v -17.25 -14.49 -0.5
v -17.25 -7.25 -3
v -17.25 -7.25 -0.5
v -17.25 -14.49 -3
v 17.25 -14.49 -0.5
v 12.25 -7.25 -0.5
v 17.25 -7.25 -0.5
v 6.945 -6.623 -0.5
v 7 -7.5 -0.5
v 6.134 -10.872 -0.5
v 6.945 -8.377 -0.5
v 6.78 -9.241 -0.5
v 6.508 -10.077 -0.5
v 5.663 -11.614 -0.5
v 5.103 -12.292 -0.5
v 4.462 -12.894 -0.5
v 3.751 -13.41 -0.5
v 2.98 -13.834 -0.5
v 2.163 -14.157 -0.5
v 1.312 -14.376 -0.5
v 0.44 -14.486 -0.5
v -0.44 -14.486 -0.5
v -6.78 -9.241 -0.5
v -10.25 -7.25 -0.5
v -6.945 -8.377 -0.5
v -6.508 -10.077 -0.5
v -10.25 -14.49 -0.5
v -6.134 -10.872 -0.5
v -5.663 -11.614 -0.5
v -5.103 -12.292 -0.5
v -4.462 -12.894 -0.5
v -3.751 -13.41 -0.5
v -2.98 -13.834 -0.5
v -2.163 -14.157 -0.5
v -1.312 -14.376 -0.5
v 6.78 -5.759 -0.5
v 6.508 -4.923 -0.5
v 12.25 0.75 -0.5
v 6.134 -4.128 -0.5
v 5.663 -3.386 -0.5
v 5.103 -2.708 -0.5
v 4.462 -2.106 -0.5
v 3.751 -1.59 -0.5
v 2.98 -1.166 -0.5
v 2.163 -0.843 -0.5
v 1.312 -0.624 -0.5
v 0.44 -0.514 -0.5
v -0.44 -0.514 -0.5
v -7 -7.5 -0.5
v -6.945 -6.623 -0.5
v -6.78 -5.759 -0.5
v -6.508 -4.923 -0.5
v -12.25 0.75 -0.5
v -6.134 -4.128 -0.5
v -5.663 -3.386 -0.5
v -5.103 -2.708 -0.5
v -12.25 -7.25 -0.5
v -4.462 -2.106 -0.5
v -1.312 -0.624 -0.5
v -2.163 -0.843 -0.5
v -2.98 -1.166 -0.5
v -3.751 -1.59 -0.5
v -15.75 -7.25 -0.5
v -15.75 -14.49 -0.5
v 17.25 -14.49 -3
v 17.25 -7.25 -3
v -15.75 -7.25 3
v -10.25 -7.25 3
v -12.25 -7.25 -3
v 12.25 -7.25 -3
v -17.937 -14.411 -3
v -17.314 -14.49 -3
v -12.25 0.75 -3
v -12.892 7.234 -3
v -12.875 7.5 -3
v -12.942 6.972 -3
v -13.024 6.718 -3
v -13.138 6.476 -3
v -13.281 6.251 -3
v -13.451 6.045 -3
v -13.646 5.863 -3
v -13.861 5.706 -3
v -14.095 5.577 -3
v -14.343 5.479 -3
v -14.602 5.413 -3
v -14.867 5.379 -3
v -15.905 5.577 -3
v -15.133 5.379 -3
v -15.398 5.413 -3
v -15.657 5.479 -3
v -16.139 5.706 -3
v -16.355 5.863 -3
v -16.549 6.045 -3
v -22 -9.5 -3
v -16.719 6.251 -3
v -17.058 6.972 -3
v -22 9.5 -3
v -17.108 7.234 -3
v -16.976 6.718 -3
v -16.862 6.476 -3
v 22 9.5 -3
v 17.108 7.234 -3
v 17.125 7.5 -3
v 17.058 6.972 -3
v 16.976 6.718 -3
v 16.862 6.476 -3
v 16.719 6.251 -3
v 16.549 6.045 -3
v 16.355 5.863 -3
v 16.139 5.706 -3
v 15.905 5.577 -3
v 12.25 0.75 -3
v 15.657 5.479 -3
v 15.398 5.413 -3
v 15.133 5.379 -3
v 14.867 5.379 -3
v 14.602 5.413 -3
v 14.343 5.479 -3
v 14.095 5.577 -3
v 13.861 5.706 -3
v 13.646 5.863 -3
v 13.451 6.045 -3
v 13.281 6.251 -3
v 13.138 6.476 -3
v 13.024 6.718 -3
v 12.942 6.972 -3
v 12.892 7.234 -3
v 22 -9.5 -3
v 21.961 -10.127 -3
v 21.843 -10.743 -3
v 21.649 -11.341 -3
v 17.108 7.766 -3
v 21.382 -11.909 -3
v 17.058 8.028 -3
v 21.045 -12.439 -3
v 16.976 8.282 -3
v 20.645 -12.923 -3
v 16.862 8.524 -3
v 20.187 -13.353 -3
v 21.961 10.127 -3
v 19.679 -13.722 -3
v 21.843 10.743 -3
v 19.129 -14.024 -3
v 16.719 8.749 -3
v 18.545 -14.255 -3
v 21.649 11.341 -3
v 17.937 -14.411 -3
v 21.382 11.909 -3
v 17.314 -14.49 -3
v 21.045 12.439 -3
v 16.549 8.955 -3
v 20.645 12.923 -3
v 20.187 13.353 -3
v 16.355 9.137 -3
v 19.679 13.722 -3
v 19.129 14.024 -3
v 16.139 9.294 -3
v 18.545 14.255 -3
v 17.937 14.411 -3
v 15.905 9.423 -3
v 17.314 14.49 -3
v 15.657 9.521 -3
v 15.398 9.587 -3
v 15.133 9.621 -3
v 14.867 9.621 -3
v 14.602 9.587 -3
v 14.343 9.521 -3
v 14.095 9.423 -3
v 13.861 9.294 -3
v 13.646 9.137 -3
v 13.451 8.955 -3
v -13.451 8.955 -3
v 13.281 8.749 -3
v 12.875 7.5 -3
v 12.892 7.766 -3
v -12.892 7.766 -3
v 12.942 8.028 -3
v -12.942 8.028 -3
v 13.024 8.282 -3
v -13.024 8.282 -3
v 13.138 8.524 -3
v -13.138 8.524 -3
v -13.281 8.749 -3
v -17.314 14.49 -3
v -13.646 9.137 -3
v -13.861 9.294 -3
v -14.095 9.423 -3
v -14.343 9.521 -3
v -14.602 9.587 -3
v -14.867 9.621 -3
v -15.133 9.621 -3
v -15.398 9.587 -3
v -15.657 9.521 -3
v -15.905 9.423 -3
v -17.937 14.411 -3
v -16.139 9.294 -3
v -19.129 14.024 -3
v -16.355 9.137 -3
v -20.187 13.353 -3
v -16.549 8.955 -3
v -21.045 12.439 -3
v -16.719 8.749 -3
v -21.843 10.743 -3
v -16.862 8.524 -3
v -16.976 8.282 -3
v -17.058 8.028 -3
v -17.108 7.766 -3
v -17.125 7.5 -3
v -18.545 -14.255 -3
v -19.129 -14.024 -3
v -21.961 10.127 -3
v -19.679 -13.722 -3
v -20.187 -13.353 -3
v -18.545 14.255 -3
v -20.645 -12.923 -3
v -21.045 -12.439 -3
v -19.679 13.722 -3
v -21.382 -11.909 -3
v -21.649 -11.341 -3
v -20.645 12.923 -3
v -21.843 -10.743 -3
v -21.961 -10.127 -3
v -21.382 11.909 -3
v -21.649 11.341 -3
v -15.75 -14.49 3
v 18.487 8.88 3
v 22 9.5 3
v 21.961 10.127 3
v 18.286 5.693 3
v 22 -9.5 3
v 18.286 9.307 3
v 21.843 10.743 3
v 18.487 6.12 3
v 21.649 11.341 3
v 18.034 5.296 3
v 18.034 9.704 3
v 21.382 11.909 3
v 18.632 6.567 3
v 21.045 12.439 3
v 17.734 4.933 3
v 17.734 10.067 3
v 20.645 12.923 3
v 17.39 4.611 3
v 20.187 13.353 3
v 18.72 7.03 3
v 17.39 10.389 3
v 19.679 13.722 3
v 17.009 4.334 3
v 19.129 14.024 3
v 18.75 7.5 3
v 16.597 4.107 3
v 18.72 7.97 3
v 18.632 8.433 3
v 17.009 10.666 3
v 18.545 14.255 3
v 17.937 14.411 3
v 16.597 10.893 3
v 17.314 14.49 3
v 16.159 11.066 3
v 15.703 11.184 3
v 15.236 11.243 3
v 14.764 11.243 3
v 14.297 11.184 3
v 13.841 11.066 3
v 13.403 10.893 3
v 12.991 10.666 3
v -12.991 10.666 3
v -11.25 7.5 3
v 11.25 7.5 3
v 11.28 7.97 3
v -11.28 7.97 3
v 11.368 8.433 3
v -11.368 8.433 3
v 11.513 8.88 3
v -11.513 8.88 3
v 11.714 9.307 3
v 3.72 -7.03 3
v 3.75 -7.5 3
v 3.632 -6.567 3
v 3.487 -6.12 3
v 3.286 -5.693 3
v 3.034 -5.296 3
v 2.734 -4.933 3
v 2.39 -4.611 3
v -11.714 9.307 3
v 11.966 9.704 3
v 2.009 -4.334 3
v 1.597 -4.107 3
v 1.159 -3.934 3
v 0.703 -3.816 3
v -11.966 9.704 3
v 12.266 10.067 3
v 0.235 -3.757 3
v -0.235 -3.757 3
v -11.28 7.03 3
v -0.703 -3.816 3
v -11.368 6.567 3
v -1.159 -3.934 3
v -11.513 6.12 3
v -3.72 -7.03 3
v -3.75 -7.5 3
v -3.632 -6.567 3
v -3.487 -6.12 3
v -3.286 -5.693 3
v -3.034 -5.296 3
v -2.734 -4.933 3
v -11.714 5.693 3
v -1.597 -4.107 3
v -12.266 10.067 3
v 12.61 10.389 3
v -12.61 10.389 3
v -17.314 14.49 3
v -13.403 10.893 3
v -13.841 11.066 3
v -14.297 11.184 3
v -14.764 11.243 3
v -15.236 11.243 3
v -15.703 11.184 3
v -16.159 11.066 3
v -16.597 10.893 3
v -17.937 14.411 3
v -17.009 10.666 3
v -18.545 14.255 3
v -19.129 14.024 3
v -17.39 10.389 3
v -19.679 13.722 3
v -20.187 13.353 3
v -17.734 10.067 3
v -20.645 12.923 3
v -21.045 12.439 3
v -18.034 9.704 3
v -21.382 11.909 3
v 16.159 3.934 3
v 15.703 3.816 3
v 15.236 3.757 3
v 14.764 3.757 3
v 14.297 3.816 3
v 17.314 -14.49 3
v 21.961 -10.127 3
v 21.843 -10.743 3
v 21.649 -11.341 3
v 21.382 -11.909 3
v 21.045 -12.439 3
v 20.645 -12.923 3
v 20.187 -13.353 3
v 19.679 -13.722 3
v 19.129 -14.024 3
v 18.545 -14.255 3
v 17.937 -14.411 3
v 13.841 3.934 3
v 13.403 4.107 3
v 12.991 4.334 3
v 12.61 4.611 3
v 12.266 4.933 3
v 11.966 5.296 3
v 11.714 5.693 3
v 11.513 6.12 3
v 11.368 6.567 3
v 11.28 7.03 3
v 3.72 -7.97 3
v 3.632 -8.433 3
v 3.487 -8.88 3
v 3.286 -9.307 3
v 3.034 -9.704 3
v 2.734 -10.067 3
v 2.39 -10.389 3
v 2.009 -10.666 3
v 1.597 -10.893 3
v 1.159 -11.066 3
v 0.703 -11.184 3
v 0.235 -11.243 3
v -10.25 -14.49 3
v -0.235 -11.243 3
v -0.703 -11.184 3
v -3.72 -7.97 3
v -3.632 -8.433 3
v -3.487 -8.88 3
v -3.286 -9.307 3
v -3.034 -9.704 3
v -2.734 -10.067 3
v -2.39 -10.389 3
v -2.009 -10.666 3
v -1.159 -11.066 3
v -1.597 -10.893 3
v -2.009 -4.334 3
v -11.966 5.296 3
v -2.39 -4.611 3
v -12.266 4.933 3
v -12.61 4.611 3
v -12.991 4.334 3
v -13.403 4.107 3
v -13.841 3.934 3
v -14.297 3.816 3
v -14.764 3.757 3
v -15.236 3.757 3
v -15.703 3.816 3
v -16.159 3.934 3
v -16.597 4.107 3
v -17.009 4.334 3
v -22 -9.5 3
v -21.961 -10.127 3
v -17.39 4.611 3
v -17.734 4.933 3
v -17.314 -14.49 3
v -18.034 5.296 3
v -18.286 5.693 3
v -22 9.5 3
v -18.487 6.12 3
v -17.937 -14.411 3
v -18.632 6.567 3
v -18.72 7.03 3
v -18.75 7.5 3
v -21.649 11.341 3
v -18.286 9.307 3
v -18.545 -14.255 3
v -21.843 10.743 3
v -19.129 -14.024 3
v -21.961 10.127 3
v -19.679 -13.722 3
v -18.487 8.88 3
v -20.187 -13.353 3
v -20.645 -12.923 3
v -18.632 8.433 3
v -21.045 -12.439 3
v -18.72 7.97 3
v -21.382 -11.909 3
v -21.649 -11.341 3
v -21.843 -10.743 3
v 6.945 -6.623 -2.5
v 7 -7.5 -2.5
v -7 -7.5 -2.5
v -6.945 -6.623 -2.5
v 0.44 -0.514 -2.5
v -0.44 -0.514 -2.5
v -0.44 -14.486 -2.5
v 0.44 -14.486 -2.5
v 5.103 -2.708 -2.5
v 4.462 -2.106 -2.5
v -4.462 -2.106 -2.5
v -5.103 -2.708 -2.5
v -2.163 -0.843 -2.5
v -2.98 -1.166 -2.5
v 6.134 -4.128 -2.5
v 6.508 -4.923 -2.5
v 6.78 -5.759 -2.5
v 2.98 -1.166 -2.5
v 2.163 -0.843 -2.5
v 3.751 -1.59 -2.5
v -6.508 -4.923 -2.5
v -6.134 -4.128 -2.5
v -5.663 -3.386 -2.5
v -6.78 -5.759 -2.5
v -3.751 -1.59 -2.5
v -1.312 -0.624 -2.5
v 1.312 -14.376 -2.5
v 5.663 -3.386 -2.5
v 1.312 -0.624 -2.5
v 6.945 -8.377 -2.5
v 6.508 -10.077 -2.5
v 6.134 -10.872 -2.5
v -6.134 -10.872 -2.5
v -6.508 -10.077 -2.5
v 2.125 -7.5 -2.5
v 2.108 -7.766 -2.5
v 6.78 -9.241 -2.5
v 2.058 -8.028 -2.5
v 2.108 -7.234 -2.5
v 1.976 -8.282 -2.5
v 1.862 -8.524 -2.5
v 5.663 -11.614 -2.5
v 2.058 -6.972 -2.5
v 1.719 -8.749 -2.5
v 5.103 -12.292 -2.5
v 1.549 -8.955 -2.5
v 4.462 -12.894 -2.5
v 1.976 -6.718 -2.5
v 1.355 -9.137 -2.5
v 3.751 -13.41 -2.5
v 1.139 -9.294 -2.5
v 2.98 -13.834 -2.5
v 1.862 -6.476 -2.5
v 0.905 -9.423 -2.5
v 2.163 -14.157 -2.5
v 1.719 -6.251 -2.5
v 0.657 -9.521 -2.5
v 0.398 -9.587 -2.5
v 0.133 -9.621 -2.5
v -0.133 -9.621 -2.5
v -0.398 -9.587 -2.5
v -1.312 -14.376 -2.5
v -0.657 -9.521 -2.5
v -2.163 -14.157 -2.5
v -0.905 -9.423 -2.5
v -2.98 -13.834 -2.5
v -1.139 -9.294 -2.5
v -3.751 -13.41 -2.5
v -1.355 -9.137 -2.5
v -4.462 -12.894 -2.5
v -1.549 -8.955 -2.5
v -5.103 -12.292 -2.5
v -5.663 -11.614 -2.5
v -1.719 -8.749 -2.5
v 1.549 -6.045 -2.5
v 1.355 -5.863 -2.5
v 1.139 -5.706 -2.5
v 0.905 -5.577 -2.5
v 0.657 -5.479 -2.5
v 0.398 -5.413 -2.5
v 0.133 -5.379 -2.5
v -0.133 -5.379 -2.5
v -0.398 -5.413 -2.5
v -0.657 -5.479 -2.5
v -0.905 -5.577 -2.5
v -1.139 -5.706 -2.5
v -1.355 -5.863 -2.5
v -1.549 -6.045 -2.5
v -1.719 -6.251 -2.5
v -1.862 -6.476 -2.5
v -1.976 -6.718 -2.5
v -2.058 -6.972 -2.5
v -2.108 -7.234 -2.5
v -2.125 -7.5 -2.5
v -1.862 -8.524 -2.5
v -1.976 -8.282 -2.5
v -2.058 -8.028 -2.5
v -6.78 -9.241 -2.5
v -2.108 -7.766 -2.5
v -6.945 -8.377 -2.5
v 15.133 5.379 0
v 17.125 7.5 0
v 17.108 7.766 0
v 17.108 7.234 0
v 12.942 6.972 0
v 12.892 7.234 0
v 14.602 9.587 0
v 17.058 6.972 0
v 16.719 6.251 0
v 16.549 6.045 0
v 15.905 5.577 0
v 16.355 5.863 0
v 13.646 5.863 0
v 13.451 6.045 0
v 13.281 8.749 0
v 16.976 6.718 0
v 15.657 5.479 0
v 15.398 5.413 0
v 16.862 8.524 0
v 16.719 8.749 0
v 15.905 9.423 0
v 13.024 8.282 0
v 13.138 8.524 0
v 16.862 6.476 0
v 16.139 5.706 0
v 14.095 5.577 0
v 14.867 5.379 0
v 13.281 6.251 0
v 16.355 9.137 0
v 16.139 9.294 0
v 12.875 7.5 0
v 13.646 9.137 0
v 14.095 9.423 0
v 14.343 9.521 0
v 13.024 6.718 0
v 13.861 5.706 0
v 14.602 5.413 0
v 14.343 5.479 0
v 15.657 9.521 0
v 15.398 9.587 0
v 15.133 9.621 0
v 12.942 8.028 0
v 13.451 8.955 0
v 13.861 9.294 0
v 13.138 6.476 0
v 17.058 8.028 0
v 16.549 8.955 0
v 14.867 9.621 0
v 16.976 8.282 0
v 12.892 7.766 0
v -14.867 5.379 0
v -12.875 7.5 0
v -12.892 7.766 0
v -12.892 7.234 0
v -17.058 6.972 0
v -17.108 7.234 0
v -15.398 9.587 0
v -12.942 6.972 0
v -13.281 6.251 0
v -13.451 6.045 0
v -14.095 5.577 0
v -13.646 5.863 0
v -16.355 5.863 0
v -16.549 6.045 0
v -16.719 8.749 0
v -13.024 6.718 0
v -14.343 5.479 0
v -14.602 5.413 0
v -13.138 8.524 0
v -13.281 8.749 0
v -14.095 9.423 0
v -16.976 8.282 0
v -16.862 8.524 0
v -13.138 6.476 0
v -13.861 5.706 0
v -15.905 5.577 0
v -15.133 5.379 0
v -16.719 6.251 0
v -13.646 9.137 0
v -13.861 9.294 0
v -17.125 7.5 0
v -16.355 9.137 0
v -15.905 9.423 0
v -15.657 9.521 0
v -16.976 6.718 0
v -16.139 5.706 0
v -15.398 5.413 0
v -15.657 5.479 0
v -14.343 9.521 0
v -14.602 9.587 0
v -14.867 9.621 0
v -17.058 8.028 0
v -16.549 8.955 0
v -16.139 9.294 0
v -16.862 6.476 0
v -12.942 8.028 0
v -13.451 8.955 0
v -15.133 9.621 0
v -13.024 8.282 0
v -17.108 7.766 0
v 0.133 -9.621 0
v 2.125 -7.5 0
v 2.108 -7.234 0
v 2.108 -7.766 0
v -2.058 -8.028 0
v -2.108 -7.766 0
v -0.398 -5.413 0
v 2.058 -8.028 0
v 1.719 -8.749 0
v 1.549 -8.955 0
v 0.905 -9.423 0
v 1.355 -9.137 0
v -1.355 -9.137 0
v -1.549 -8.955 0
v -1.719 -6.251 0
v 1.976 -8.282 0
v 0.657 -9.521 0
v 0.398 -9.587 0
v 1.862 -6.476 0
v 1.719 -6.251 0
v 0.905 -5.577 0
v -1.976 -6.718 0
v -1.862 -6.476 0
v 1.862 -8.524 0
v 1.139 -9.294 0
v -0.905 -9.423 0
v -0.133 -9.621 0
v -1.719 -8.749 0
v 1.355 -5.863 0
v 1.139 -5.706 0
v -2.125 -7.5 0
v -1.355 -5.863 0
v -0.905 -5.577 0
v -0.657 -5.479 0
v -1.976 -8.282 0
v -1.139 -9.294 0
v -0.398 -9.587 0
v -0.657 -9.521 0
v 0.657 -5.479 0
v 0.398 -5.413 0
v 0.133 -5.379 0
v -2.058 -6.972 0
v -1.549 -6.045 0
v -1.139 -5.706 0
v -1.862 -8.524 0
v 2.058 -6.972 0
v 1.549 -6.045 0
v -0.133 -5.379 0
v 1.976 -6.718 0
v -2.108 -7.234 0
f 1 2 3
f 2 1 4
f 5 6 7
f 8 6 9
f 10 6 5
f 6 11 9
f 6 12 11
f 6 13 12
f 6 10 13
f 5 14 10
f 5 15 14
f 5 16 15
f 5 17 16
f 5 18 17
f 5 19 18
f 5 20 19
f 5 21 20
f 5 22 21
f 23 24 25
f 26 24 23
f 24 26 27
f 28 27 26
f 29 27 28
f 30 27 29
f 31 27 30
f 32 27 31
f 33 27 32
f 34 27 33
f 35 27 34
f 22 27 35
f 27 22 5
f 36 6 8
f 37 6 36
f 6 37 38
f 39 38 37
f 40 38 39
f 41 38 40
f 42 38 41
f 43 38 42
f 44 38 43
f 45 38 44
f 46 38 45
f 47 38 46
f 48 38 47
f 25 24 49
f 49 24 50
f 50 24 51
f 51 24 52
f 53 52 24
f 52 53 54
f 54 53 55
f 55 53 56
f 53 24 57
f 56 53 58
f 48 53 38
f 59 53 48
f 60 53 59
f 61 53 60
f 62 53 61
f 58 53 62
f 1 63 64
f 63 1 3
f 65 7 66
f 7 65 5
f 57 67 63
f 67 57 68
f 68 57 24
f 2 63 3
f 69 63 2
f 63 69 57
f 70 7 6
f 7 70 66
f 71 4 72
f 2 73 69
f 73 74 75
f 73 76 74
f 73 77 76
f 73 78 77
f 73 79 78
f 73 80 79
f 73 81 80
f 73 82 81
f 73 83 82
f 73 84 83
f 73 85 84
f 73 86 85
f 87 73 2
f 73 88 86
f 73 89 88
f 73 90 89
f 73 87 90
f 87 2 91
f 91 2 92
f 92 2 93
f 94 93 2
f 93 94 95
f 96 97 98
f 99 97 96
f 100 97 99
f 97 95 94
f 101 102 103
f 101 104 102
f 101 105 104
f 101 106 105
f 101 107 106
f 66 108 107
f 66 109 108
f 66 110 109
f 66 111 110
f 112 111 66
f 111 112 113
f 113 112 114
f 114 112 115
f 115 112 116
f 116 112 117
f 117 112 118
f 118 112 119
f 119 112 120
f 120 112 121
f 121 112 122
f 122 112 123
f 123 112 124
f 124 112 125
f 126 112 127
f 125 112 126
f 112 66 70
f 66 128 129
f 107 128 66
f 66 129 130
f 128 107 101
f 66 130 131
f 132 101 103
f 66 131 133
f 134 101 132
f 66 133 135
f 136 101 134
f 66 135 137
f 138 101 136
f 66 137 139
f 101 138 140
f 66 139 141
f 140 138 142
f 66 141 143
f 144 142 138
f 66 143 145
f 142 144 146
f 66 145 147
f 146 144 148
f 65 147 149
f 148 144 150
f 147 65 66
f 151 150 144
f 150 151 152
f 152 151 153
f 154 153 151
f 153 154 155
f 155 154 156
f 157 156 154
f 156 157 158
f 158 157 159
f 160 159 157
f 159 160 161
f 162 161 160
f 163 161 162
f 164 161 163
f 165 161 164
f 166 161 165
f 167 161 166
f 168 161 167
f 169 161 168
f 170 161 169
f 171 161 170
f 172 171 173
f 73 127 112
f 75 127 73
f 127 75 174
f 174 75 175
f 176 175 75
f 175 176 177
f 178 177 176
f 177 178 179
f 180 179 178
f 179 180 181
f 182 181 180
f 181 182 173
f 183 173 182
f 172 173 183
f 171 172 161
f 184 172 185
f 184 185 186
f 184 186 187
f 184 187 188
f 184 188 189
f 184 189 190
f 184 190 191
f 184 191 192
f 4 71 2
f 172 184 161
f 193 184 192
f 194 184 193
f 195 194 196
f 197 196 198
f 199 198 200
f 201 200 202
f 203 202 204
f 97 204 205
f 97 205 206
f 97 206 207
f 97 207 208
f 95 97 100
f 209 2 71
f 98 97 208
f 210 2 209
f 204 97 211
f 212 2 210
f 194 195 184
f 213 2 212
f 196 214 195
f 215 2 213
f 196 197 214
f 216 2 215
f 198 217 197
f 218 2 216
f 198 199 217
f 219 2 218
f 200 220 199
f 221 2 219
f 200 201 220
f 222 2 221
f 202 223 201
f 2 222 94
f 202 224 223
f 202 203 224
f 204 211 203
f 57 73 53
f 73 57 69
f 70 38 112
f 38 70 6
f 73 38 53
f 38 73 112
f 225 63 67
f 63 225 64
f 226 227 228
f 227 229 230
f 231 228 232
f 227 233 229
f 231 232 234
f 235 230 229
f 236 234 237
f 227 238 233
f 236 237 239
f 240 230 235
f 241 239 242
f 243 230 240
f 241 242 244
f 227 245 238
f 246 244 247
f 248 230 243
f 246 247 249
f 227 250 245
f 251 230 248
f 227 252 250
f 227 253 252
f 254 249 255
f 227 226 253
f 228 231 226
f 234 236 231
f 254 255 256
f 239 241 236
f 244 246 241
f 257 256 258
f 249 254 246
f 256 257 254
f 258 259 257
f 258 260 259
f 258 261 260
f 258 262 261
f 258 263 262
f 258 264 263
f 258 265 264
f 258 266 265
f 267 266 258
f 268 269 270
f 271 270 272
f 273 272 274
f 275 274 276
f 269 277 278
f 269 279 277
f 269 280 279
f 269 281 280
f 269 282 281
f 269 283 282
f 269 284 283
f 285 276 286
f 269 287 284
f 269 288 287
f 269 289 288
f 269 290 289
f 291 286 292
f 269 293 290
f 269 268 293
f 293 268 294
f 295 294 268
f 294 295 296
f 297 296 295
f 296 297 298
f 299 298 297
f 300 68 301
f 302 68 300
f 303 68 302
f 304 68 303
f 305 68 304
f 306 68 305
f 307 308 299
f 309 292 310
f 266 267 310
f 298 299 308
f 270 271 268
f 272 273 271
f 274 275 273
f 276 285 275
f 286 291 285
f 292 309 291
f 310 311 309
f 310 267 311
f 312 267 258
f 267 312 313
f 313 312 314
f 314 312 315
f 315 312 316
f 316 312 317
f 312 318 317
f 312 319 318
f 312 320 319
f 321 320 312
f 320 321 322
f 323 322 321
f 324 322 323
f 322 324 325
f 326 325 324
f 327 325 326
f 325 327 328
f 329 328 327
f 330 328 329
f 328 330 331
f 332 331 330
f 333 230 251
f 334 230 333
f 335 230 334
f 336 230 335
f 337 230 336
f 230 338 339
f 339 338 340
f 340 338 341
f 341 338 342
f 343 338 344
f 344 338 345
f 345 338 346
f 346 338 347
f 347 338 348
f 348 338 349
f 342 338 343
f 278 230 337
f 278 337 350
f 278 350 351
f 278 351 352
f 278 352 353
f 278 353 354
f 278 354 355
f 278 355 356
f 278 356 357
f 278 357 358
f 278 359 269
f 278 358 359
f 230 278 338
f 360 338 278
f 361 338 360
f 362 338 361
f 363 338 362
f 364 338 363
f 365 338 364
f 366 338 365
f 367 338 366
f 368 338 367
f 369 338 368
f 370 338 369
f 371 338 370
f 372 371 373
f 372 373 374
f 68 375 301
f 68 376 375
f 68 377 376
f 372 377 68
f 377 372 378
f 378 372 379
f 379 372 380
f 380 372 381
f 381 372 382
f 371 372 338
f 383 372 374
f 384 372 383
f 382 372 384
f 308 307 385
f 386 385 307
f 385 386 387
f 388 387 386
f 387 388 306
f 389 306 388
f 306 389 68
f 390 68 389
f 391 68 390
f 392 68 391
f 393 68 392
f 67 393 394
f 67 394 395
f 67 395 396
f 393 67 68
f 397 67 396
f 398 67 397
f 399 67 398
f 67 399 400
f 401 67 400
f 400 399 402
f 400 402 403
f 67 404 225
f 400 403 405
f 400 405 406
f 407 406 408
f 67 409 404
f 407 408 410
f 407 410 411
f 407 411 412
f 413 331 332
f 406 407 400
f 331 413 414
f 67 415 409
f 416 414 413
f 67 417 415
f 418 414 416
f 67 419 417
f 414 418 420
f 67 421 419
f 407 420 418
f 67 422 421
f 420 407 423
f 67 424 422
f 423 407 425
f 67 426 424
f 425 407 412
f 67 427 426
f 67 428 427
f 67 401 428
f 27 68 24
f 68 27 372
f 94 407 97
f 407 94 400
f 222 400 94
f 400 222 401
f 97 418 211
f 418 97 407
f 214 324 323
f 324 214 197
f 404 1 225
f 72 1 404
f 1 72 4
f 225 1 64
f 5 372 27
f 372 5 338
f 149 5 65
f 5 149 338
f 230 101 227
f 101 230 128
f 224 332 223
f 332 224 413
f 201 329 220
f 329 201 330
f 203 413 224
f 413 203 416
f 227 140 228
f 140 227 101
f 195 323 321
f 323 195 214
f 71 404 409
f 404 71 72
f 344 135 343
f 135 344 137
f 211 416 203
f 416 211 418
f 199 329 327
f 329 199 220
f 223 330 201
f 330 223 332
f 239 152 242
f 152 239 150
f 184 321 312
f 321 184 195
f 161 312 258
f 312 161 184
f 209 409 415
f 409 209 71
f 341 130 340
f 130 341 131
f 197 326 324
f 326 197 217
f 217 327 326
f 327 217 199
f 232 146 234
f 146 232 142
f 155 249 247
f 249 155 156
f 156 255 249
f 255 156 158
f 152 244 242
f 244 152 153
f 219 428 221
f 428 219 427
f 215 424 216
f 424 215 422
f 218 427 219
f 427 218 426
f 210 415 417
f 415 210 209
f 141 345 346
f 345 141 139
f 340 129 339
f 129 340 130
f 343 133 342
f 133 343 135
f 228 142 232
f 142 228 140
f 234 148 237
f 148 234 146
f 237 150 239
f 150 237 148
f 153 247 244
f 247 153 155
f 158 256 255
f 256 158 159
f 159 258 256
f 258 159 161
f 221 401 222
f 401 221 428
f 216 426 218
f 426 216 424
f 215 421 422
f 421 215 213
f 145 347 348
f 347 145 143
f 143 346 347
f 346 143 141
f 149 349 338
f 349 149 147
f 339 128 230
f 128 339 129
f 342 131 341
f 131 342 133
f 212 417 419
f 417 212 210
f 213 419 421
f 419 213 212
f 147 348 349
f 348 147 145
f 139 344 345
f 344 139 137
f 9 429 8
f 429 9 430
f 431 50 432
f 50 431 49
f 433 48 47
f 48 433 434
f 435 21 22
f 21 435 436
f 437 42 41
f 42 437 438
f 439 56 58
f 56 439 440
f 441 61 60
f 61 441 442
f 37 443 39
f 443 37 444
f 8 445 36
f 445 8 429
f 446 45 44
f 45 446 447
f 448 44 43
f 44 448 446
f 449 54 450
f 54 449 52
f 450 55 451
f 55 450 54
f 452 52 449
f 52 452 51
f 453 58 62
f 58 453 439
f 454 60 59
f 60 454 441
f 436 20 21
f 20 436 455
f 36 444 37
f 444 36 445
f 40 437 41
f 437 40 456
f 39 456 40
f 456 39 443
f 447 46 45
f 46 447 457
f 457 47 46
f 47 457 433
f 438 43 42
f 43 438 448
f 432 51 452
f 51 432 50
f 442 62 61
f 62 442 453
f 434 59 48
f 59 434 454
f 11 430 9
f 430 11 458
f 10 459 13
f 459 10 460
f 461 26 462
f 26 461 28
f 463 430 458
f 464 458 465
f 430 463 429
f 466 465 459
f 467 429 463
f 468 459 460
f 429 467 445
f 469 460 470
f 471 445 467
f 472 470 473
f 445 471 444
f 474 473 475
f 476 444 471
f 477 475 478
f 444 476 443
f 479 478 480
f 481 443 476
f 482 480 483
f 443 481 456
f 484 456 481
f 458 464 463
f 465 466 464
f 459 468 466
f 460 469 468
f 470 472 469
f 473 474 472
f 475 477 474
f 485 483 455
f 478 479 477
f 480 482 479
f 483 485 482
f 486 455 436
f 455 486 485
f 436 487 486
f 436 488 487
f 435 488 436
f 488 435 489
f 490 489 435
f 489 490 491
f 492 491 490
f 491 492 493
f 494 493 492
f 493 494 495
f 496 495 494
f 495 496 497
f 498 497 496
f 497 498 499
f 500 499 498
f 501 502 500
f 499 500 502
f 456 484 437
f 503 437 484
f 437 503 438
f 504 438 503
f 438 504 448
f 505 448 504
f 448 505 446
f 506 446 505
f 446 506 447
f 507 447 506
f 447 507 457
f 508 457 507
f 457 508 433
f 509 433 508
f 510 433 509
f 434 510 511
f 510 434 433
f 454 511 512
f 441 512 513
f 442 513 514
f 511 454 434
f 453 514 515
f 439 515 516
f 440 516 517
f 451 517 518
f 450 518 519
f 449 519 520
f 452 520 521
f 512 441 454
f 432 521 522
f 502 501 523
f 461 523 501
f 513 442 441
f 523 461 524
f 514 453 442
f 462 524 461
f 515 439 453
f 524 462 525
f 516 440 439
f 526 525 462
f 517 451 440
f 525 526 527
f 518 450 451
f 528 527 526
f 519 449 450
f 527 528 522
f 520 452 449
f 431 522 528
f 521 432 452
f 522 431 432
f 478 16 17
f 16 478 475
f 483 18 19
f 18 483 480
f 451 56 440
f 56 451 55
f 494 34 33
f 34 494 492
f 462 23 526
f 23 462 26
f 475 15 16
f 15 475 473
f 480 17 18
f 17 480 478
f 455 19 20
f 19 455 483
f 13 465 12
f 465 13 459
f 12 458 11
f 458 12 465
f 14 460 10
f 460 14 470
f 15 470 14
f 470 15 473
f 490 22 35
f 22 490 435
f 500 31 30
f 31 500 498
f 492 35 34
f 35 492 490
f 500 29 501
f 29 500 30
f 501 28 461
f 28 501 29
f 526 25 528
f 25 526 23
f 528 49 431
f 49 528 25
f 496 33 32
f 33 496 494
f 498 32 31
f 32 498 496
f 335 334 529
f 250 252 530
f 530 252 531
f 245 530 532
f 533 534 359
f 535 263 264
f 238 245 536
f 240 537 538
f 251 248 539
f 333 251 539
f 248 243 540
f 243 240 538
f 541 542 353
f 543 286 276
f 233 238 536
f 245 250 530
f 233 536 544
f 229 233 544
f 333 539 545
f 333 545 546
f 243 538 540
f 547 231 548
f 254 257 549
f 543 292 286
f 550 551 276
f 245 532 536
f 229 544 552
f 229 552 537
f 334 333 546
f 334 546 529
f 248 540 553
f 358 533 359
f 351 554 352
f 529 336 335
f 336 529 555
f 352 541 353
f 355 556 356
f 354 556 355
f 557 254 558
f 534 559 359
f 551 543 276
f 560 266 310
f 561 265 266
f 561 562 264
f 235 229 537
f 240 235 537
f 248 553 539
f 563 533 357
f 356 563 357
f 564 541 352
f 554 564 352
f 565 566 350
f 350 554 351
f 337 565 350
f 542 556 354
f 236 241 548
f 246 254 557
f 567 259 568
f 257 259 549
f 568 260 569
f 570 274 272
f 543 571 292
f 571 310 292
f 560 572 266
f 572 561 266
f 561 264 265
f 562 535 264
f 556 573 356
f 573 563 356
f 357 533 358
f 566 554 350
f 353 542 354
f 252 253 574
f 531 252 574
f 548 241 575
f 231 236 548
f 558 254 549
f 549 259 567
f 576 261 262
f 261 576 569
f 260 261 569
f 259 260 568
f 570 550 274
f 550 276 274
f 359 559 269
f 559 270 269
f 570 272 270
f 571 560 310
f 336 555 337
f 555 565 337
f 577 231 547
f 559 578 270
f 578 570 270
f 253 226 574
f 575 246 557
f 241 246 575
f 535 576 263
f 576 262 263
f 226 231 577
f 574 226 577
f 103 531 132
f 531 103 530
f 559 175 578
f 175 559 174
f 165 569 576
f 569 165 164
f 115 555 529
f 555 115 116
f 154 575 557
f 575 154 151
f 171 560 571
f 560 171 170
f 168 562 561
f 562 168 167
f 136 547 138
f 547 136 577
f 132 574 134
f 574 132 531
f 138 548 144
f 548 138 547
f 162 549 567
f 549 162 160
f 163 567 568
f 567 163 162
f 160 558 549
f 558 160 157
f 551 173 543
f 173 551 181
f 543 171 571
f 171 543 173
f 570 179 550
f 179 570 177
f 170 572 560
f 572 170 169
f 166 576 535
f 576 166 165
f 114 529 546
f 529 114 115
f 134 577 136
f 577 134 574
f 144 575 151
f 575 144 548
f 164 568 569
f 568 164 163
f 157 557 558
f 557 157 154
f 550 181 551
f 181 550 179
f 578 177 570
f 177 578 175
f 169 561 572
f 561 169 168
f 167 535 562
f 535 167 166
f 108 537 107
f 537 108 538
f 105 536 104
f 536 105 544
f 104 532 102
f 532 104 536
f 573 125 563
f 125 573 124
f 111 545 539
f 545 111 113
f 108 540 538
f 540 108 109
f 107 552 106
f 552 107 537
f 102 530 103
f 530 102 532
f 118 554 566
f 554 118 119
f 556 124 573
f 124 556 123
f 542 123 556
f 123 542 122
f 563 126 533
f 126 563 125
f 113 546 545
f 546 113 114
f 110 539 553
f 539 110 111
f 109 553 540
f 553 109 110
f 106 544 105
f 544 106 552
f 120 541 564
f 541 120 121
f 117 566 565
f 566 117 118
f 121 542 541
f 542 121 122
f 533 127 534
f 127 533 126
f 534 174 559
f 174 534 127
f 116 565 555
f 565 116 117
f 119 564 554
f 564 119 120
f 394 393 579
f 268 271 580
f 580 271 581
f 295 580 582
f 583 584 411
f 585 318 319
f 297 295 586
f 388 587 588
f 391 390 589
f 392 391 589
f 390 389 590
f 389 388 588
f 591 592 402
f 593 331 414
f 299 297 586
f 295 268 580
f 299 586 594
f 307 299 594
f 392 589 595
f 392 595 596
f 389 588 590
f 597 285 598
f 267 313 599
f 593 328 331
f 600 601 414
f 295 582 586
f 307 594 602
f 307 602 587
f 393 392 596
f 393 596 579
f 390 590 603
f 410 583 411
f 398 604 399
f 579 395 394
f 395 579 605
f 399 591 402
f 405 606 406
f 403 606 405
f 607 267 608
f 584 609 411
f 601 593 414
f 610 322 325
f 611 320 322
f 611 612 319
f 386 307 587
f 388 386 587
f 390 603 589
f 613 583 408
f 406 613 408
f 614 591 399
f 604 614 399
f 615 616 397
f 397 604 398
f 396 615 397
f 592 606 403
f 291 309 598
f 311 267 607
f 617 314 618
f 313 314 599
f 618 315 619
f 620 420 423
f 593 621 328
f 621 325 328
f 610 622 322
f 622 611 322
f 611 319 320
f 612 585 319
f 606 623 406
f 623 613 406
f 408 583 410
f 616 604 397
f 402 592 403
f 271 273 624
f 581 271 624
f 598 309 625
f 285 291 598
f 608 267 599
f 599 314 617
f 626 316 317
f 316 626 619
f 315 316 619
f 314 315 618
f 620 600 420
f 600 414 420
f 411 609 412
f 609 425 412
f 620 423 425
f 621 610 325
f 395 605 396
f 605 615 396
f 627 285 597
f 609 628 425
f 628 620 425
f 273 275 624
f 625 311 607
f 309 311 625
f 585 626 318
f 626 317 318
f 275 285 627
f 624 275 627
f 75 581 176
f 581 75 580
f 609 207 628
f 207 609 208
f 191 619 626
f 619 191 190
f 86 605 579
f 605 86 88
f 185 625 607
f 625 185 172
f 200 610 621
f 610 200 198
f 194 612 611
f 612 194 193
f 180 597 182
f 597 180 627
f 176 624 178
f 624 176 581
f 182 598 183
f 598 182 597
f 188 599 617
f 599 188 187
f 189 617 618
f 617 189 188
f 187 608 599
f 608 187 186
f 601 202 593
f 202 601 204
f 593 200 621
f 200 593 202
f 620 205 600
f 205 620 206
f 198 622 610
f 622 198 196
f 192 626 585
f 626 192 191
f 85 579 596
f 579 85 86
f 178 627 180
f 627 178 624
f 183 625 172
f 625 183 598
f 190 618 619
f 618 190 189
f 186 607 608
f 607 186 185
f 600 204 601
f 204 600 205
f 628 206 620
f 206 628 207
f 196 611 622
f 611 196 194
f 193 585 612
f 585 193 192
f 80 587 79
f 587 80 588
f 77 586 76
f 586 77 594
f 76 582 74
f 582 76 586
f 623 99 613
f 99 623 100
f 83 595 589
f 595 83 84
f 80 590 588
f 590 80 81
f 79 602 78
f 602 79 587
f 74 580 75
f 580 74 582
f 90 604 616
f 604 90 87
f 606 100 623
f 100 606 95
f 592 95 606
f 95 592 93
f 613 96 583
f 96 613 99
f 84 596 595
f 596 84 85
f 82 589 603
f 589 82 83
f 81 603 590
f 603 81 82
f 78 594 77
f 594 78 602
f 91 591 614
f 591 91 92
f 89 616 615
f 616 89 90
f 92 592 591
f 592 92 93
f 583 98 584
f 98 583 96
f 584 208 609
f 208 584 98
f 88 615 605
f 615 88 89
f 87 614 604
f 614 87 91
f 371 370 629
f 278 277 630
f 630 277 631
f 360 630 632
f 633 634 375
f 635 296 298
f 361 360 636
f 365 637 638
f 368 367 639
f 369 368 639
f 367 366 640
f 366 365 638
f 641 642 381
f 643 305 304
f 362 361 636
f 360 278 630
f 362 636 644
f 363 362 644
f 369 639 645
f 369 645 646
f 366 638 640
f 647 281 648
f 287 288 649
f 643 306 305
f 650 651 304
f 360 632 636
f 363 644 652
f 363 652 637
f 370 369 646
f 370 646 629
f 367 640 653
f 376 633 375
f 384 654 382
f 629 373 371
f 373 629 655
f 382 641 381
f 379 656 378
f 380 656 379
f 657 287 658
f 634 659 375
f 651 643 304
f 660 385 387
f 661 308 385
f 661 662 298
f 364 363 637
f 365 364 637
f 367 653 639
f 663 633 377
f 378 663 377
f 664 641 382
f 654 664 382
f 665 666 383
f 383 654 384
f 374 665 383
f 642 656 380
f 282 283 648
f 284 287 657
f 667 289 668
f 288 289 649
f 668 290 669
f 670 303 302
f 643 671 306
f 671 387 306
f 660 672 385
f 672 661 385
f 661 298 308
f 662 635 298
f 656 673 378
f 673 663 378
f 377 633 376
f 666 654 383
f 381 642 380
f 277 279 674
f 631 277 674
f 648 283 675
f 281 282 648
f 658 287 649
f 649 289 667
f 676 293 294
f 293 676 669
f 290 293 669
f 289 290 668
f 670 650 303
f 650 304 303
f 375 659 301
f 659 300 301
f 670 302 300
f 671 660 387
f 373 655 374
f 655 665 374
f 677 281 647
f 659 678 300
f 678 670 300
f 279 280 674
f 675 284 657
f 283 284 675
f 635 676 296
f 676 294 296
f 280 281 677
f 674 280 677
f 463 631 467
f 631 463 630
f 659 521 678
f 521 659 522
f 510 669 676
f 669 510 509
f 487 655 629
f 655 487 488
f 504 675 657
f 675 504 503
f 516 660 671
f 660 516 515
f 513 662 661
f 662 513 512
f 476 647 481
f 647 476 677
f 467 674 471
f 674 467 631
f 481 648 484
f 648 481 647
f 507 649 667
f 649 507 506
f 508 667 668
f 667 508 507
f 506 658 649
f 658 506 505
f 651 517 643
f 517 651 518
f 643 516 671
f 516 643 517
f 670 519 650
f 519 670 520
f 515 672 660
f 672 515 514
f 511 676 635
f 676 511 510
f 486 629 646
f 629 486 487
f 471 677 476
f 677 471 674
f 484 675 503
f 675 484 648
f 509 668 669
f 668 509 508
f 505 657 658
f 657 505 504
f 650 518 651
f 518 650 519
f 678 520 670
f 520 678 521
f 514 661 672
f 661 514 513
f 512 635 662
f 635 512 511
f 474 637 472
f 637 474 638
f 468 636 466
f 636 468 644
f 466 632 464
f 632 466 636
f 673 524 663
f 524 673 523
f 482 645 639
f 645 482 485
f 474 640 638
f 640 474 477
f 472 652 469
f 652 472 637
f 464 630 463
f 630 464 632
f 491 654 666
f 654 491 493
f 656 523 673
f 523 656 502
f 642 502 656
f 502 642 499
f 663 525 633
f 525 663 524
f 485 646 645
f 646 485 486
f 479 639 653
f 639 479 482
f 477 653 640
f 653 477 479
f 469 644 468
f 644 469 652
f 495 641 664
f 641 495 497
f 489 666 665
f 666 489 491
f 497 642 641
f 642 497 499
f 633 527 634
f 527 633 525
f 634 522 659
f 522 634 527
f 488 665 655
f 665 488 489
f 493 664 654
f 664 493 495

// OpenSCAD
$fn = 50;


difference() {
	union() {
		difference() {
			union() {
				translate(v = [0, 0, -3.0000000000]) {
					hull() {
						translate(v = [-17.0000000000, 9.5000000000, 0]) {
							cylinder(h = 6, r = 5);
						}
						translate(v = [17.0000000000, 9.5000000000, 0]) {
							cylinder(h = 6, r = 5);
						}
						translate(v = [-17.0000000000, -9.5000000000, 0]) {
							cylinder(h = 6, r = 5);
						}
						translate(v = [17.0000000000, -9.5000000000, 0]) {
							cylinder(h = 6, r = 5);
						}
					}
				}
			}
			union() {
				translate(v = [-17.2500000000, -37.7500000000, -3.0000000000]) {
					cube(size = [34.5000000000, 30.5000000000, 2.5000000000]);
				}
				translate(v = [-12.2500000000, -7.7500000000, -3.0000000000]) {
					cube(size = [24.5000000000, 8.5000000000, 2.5000000000]);
				}
				#translate(v = [-15.7500000000, -22.7500000000, -3.0000000000]) {
					cube(size = [5.5000000000, 15.5000000000, 6]);
				}
			}
		}
		union() {
			translate(v = [0, -7.5000000000, -2.5000000000]) {
				cylinder(h = 5, r = 7.0000000000);
			}
		}
	}
	union() {
		translate(v = [15, 7.5000000000, 3.0000000000]) {
			rotate(a = [0, 0, 0]) {
				difference() {
					union() {
						#translate(v = [0, 0, -6.0000000000]) {
							cylinder(h = 6, r = 2.0000000000);
						}
						#translate(v = [0, 0, -3]) {
							cylinder(h = 3, r1 = 2.1250000000, r2 = 3.7500000000);
						}
						#translate(v = [0, 0, -6.0000000000]) {
							cylinder(h = 6, r = 2.1250000000);
						}
						#translate(v = [0, 0, -6.0000000000]) {
							cylinder(h = 6, r = 2.0000000000);
						}
					}
					union();
				}
			}
		}
		translate(v = [-15, 7.5000000000, 3.0000000000]) {
			rotate(a = [0, 0, 0]) {
				difference() {
					union() {
						#translate(v = [0, 0, -6.0000000000]) {
							cylinder(h = 6, r = 2.0000000000);
						}
						#translate(v = [0, 0, -3]) {
							cylinder(h = 3, r1 = 2.1250000000, r2 = 3.7500000000);
						}
						#translate(v = [0, 0, -6.0000000000]) {
							cylinder(h = 6, r = 2.1250000000);
						}
						#translate(v = [0, 0, -6.0000000000]) {
							cylinder(h = 6, r = 2.0000000000);
						}
					}
					union();
				}
			}
		}
		translate(v = [0, -7.5000000000, 3.0000000000]) {
			rotate(a = [0, 0, 0]) {
				difference() {
					union() {
						#translate(v = [0, 0, -6.0000000000]) {
							cylinder(h = 6, r = 2.0000000000);
						}
						#translate(v = [0, 0, -3]) {
							cylinder(h = 3, r1 = 2.1250000000, r2 = 3.7500000000);
						}
						#translate(v = [0, 0, -6.0000000000]) {
							cylinder(h = 6, r = 2.1250000000);
						}
						#translate(v = [0, 0, -6.0000000000]) {
							cylinder(h = 6, r = 2.0000000000);
						}
					}
					union();
				}
			}
		}
	}
}
